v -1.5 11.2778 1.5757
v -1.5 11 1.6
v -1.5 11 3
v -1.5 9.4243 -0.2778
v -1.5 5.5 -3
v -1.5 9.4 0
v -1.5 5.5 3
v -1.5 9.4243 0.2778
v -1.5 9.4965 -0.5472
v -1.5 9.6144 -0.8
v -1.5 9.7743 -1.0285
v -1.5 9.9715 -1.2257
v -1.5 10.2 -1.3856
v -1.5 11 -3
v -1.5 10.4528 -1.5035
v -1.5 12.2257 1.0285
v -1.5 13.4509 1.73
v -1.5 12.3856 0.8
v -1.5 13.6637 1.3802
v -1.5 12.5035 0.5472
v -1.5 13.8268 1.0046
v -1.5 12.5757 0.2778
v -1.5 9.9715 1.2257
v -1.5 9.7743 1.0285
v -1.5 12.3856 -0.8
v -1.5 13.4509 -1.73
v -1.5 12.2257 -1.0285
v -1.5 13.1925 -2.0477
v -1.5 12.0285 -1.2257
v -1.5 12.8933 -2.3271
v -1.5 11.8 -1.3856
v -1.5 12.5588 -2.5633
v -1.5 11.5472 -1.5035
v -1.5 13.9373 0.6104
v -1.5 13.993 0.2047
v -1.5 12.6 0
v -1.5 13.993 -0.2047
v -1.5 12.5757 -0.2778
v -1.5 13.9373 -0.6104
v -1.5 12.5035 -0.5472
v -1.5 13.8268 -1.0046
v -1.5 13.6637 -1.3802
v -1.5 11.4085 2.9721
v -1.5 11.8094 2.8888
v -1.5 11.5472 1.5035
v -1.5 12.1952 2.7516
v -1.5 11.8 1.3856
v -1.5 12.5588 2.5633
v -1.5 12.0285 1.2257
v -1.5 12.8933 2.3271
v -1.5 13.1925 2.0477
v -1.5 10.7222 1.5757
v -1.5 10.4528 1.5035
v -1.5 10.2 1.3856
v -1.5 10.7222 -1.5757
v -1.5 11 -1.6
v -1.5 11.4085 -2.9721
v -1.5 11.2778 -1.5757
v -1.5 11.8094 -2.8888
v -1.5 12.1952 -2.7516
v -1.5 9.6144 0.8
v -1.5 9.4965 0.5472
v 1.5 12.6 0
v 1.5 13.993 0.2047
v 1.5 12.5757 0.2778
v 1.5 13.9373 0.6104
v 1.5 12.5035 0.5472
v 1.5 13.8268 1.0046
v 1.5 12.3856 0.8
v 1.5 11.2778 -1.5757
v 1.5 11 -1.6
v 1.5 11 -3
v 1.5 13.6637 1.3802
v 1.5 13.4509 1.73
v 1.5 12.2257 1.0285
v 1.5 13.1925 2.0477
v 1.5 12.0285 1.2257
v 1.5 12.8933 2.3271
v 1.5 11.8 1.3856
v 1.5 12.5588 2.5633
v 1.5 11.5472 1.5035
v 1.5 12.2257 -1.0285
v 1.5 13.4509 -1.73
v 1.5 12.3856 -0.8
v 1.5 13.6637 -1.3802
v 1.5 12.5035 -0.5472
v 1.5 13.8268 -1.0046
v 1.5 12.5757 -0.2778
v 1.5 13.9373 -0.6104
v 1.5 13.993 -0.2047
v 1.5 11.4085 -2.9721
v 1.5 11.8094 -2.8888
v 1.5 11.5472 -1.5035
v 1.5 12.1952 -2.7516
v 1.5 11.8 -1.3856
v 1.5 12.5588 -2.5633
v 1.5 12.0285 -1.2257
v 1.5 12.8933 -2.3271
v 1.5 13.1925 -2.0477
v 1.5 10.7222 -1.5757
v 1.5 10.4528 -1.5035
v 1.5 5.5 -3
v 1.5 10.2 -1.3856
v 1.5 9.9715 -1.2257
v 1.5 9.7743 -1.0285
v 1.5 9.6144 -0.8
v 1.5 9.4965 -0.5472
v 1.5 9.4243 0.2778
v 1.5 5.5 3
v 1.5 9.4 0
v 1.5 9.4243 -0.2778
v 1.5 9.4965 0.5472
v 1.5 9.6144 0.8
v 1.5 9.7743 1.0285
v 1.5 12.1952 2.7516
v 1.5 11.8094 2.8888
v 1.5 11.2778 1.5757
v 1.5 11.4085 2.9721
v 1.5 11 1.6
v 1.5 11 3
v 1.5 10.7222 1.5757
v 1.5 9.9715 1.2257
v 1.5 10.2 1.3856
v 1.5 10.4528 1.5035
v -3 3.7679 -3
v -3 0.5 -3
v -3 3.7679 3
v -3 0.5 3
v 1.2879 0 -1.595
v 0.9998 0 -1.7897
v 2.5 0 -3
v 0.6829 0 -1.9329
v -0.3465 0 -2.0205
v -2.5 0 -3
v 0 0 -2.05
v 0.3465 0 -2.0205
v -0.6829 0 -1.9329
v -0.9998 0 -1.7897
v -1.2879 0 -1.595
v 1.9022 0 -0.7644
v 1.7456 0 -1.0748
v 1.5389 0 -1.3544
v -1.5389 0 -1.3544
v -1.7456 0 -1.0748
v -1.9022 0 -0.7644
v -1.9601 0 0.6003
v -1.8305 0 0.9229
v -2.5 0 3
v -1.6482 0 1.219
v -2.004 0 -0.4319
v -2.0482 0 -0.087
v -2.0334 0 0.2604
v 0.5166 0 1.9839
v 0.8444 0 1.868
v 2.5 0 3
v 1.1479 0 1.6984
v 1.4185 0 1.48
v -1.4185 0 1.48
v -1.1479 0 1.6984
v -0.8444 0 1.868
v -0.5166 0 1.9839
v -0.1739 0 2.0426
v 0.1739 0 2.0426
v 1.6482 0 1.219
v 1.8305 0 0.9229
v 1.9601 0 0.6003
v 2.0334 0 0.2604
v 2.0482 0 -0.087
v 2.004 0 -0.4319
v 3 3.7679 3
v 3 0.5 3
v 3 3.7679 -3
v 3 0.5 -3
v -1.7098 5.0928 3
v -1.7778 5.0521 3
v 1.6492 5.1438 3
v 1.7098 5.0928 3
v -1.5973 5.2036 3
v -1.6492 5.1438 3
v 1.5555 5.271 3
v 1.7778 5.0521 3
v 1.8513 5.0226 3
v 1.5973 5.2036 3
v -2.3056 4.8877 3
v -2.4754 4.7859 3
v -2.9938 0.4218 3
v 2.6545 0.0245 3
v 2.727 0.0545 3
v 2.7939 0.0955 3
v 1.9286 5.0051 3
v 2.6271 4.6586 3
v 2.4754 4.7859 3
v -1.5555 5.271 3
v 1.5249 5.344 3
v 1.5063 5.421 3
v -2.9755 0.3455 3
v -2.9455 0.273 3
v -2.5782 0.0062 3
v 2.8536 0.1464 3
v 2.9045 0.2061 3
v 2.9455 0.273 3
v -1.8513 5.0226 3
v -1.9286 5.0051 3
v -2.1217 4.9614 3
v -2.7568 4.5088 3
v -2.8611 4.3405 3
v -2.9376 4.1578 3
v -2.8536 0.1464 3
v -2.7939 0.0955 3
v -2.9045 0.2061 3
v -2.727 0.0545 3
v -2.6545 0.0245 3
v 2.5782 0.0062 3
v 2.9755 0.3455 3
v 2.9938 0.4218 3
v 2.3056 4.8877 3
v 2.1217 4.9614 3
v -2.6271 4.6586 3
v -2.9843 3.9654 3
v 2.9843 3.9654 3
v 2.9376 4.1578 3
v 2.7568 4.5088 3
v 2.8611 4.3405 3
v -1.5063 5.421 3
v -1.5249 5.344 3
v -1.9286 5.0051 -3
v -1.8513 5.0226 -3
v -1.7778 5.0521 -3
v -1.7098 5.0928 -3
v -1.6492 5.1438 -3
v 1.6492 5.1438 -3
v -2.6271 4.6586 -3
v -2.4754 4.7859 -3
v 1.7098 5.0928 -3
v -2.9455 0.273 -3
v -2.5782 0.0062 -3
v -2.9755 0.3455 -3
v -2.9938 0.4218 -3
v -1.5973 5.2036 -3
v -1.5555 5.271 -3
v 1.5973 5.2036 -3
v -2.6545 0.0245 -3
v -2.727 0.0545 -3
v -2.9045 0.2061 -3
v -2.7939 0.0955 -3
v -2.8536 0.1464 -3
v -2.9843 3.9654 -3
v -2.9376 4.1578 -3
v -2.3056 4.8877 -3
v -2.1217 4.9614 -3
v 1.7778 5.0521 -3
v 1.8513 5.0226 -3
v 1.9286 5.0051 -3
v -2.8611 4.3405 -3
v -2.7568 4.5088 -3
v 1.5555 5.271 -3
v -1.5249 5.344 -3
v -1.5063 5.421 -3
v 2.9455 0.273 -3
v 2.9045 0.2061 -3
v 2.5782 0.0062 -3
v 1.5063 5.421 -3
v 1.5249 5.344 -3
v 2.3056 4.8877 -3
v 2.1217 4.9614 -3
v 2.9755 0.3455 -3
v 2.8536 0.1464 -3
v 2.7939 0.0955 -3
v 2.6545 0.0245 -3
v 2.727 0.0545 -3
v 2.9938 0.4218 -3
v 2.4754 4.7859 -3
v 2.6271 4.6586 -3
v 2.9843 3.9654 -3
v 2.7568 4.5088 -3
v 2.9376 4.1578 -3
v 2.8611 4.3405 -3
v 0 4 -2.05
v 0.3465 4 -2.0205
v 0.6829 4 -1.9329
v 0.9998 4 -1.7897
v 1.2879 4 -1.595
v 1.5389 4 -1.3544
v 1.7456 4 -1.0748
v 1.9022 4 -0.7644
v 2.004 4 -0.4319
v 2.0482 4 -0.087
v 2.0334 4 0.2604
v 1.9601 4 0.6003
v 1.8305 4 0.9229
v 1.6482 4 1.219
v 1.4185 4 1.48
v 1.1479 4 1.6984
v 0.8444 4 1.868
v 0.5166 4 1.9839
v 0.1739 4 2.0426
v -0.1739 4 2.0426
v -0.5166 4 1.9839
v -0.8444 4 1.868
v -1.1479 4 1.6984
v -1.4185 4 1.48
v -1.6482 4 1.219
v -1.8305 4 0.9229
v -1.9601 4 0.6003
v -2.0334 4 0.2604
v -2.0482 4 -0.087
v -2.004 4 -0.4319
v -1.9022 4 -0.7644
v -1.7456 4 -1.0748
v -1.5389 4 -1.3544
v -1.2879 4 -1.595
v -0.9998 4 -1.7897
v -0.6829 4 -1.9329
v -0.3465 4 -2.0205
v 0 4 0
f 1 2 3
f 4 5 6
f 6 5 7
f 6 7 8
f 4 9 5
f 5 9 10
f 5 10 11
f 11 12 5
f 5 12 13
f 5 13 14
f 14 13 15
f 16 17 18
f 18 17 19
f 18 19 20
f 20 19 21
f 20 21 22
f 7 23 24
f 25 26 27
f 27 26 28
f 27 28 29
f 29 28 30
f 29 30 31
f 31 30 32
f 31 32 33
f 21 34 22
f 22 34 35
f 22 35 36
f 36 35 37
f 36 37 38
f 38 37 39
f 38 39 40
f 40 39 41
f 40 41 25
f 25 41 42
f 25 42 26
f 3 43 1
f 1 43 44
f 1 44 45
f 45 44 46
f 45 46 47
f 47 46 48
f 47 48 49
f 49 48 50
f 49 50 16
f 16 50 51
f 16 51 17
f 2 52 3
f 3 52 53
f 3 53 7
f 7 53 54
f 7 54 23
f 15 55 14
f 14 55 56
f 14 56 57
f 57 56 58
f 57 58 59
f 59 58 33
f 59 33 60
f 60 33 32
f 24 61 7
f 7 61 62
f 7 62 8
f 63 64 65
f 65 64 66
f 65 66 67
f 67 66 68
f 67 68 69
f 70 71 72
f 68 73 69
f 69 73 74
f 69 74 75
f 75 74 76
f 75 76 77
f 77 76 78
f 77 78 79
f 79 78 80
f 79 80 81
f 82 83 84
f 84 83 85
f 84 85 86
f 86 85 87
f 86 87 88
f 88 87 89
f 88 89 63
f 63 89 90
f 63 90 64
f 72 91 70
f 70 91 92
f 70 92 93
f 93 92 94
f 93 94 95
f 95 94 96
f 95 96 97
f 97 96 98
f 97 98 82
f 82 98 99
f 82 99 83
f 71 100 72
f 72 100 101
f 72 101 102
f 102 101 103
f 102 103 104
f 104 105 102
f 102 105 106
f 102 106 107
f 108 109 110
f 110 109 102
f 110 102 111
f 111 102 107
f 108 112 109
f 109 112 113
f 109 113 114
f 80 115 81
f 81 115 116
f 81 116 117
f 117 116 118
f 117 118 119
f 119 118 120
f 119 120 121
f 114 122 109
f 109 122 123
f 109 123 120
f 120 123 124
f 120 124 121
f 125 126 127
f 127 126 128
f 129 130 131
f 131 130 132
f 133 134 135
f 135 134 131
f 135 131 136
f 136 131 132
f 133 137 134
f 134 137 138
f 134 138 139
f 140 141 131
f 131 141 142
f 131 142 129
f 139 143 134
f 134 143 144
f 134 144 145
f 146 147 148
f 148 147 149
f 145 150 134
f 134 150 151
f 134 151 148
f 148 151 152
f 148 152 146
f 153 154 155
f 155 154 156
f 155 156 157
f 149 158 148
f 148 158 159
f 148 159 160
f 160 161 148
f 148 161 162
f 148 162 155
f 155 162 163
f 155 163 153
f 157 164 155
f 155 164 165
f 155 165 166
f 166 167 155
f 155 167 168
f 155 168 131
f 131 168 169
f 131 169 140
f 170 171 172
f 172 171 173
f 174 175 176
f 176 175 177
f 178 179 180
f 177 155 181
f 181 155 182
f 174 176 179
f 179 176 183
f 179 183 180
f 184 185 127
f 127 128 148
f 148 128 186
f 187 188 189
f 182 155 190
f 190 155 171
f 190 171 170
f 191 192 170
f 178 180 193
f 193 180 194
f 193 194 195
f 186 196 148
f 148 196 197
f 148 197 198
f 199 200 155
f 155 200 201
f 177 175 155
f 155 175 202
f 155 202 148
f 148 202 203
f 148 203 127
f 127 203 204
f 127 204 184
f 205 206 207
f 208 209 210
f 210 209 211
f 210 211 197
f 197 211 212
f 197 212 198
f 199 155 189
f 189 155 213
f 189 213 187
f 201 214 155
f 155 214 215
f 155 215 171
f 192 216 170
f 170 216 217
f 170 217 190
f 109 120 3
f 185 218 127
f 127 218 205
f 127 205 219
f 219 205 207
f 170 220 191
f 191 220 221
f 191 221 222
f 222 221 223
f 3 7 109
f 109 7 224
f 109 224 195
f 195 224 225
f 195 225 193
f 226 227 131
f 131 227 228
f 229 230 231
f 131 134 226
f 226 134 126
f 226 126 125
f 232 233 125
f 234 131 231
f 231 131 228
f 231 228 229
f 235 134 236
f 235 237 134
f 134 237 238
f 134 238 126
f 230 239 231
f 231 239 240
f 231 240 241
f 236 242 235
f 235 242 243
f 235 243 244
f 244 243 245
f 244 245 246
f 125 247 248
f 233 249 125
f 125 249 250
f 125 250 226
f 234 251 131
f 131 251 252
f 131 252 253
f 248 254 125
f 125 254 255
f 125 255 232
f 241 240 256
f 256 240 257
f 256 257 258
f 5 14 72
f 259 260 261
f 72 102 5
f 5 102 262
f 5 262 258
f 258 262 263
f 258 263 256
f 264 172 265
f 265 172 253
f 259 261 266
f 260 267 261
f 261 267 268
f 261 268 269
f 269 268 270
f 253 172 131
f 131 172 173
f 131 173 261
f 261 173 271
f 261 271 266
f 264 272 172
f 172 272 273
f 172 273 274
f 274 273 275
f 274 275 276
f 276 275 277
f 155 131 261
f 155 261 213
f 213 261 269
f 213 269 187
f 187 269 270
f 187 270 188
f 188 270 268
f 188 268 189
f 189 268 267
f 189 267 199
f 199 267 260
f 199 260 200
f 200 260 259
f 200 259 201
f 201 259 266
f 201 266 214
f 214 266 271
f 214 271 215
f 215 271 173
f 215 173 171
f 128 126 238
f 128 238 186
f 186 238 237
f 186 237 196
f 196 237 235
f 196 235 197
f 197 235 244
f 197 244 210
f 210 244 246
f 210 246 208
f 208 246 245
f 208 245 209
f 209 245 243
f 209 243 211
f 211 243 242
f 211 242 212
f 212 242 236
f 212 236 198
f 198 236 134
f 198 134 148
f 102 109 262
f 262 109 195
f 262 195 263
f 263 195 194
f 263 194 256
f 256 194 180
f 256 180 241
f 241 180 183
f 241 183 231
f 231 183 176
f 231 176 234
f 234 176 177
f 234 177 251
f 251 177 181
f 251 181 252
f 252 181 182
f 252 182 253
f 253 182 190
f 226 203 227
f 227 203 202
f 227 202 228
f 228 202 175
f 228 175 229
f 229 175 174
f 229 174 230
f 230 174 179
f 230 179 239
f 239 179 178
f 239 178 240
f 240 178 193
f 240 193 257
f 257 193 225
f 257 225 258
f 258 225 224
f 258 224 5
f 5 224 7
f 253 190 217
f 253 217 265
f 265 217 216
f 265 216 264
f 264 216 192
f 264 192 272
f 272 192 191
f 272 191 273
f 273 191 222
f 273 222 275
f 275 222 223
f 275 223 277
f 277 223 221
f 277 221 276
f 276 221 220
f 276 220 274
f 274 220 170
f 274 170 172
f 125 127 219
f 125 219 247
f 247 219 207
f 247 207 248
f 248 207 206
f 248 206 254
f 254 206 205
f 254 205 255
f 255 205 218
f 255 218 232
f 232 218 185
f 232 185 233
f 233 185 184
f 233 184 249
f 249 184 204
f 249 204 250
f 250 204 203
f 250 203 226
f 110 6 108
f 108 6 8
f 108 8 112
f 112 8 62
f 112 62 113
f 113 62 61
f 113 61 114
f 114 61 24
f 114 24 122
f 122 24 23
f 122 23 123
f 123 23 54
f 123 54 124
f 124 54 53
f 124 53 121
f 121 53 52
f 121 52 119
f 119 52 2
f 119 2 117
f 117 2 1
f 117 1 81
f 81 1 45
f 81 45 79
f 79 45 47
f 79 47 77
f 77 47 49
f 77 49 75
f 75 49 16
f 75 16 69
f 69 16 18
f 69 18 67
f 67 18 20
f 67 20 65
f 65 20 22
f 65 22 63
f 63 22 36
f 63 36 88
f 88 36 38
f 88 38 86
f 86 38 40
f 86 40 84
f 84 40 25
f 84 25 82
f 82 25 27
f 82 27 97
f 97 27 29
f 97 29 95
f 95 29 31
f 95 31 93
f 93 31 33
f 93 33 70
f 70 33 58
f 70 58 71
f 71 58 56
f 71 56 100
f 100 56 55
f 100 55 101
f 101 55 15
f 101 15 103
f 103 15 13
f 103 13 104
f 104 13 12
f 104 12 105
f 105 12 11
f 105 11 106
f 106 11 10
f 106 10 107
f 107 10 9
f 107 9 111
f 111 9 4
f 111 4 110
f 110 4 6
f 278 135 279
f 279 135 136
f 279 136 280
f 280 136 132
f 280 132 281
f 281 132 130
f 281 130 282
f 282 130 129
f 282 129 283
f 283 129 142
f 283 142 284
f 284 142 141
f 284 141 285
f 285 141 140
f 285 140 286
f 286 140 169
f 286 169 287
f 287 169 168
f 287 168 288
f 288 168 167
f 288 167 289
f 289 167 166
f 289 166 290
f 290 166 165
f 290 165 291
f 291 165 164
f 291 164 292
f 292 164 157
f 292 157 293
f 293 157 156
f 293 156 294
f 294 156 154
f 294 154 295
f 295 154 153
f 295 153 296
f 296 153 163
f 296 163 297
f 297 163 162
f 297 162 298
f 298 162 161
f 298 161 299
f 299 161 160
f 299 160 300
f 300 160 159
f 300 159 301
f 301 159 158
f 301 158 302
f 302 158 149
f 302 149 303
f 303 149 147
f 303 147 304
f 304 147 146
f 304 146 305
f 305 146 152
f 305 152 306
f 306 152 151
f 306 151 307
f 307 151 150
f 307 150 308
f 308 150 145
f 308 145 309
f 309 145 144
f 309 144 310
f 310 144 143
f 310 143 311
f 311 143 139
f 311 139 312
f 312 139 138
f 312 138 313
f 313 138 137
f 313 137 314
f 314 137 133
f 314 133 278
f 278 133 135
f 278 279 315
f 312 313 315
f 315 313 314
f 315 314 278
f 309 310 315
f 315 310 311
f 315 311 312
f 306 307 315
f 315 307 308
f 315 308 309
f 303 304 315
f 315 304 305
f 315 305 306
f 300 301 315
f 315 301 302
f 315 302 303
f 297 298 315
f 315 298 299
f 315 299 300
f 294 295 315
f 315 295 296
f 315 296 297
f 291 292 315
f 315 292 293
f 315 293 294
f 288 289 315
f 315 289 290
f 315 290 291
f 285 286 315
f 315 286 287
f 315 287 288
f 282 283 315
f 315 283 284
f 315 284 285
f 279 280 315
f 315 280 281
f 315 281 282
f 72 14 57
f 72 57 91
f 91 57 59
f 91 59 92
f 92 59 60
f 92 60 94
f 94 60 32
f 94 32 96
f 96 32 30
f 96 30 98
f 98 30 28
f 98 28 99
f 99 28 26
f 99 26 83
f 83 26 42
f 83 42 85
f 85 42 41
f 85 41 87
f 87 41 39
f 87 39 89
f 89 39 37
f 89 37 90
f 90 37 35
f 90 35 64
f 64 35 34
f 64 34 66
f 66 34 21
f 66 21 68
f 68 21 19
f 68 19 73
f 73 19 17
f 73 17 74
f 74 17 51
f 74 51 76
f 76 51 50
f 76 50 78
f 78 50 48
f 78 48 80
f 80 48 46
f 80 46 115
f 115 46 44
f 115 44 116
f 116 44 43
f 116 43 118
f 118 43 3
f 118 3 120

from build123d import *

# Parameters (mm, degrees)
EXTRUDE_1_DEPTH     = 3
FILLET_1_R          = 0.5
FILLET_2_R          = 1.25
SKETCH_3_R          = 1.6
CUT_EXTRUDE_2_DEPTH = 16.008331163
SKETCH_4_R          = 2.05
CUT_EXTRUDE_4_DEPTH = 4
CUT_EXTRUDE_5_DEPTH = 16.008331163


with BuildPart() as part:
    # ｽｹｯﾁ1 → ﾎﾞｽ - 押し出し1 (new, symmetric)
    with BuildSketch(Plane.XY):
        Polygon((1.5, 14), (-1.5, 14), (-1.5, 5), (-3, 5), (-3, 0), (3, 0), (3, 5), (1.5, 5), align=None)
    extrude(amount=EXTRUDE_1_DEPTH, both=True)

    # ﾌｨﾚｯﾄ1
    fillet_1_edges = [part.edges().sort_by_distance(p)[0] for p in [
        (1.5, 5, 0),
        (3, 0, 0),
        (-3, 0, 0),
        (-1.5, 5, 0),
    ]]
    fillet(fillet_1_edges, radius=FILLET_1_R)

    # ﾌｨﾚｯﾄ2
    fillet_2_edges = [part.edges().sort_by_distance(p)[0] for p in [
        (3, 5, 0),
        (-3, 5, 0),
    ]]
    fillet(fillet_2_edges, radius=FILLET_2_R)

    # ｽｹｯﾁ3 → ｶｯﾄ - 押し出し2 (cut, through all)
    with BuildSketch(Plane.ZY.offset(1.5)):
        with Locations(Location((0, 11, 0), (0, 0, 270))):
            Circle(SKETCH_3_R)
    extrude(amount=-CUT_EXTRUDE_2_DEPTH, mode=Mode.SUBTRACT)

    # ｽｹｯﾁ4 → ｶｯﾄ - 押し出し4 (cut)
    with BuildSketch(Plane.XZ):
        with Locations(Location((0, 0, 0), (0, 0, 270))):
            Circle(SKETCH_4_R)
    extrude(amount=-CUT_EXTRUDE_4_DEPTH, mode=Mode.SUBTRACT)

    # ｽｹｯﾁ5 → ｶｯﾄ - 押し出し5 (cut, through all)
    with BuildSketch(Plane.ZY.offset(1.5)):
        with BuildLine():
            Line((-3, 14), (-3, 11))
            ThreePointArc((-3, 11), (-2.121320344, 13.121320344), (0, 14))
            Line((0, 14), (-3, 14))
        make_face()
        with BuildLine():
            Line((3, 14), (0, 14))
            ThreePointArc((0, 14), (2.121320344, 13.121320344), (3, 11))
            Line((3, 11), (3, 14))
        make_face()
    extrude(amount=-CUT_EXTRUDE_5_DEPTH, mode=Mode.SUBTRACT)


solid = part.part
